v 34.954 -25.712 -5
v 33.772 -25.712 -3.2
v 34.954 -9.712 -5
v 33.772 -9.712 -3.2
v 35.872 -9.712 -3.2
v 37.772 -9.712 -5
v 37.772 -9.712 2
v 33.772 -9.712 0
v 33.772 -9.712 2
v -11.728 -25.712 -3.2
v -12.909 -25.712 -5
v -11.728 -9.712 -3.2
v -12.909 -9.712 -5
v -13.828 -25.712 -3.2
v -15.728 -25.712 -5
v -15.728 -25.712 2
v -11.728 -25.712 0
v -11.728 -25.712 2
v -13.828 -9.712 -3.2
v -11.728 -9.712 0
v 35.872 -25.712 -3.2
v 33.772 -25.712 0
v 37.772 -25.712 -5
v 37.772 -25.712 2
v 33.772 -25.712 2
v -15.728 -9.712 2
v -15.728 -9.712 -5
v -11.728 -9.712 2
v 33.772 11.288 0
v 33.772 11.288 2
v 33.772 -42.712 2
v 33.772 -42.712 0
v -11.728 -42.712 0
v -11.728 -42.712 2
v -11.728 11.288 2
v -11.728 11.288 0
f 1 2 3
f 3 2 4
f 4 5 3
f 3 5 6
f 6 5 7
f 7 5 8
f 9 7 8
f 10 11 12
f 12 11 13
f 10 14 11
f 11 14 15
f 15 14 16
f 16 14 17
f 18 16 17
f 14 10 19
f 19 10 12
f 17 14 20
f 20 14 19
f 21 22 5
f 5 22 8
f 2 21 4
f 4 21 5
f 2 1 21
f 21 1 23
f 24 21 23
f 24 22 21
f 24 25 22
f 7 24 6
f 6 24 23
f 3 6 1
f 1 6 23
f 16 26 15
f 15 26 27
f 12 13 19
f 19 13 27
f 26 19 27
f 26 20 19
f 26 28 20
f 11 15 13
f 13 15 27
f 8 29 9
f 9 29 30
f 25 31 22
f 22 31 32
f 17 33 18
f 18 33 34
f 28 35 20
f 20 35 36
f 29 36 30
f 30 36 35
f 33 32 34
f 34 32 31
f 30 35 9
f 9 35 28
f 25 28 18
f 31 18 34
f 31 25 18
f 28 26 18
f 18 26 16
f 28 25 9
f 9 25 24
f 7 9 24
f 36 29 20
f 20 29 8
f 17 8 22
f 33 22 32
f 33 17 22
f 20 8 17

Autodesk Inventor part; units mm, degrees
ref_plane "YZ Plane" through (0, 0, 0) normal (1, 0, 0) x (0, 1, 0)
ref_plane "XZ Plane" through (0, 0, 0) normal (0, 1, 0) x (-1, 0, 0)
ref_plane "XY Plane" through (0, 0, 0) normal (0, 0, 1) x (1, 0, 0)
sketch "Sketch1" plane through (0, 0, 0) normal (0, 0, 1) x (1, 0, 0)
  line L0 (-11.7277, 11.2879) -> (33.7723, 11.2879)
  line L1 (33.7723, 11.2879) -> (33.7723, -42.7121)
  line L2 (33.7723, -42.7121) -> (-11.7277, -42.7121)
  line L3 (-11.7277, -42.7121) -> (-11.7277, 11.2879)
  line L4 (-11.7277, -9.7121) -> (-15.7277, -9.7121)
  line L5 (-15.7277, -9.7121) -> (-15.7277, -23.7121)
  line L6 (-15.7277, -23.7121) -> (-11.7277, -23.7121)
  line L7 (-11.7277, -23.7121) -> (-11.7277, -9.7121)
  line L8 (33.7723, -9.7121) -> (37.7723, -9.7121)
  line L9 (37.7723, -9.7121) -> (37.7723, -23.7121)
  line L10 (37.7723, -23.7121) -> (33.7723, -23.7121)
  line L11 (33.7723, -23.7121) -> (33.7723, -9.7121)
  point P0 (0, 0)
  dimension "d0" = 45.5
  dimension "d1" = 54
  dimension "d2" = 4
  dimension "d3" = 14
  dimension "d4" = 21
  dimension "d5" = 4
  dimension "d6" = 14
  dimension "d7" = 21
extrude "Extrusion1" add sketch "Sketch1" along normal blind 2 contours L0 L1 L2 L3
sketch "Sketch2" plane through (0, 0, 2) normal (0, 0, 1) x (1, 0, 0)
  line L0 (-11.7277, 11.2879) -> (-11.7277, -42.7121) projected
  line L1 (33.7723, -42.7121) -> (33.7723, 11.2879) projected
  line L2 (33.7723, 11.2879) -> (-11.7277, 11.2879) projected
  line L3 (-11.7277, -9.7121) -> (-15.7277, -9.7121)
  line L4 (-15.7277, -9.7121) -> (-15.7277, -25.7121)
  line L5 (-15.7277, -25.7121) -> (-11.7277, -25.7121)
  line L6 (-11.7277, -25.7121) -> (-11.7277, -9.7121)
  line L7 (33.7723, -9.7121) -> (37.7723, -9.7121)
  line L8 (37.7723, -9.7121) -> (37.7723, -25.7121)
  line L9 (37.7723, -25.7121) -> (33.7723, -25.7121)
  line L10 (33.7723, -25.7121) -> (33.7723, -9.7121)
  point P0 (0, 0)
  dimension "d10" = 4
  dimension "d11" = 16
  dimension "d12" = 21
  dimension "d13" = 4
extrude "Extrusion2" add sketch "Sketch2" against normal blind 7
sketch "Sketch3" plane through (33.7723, -9.7121, 2) normal (0, 1, 0) x (1, 0, 0)
  line L0 (4, 0) -> (4, 7) projected
  line L1 (0, 2) -> (0, 7) projected
  line L2 (0, 7) -> (0, 5.2)
  line L3 (0, 5.2) -> (2.1, 5.2)
  line L4 (2.1, 5.2) -> (0, 2)
  line L5 (0, 5.2) -> (0, 2)
  point P0 (-33.7723, 2)
  dimension "d16" = 1.8
  dimension "d17" = 2.1
extrude "Extrusion3" cut sketch "Sketch3" against normal blind 24.75
sketch "Sketch4" plane through (-15.7277, -9.7121, 2) normal (0, 1, 0) x (1, 0, 0)
  line L0 (4, 2) -> (4, 7) projected
  line L1 (4, 7) -> (4, 5.2)
  line L2 (4, 5.2) -> (1.9, 5.2)
  line L3 (1.9, 5.2) -> (4, 2)
  point P0 (15.7277, 2)
  dimension "d20" = 1.8
  dimension "d21" = 2.1
extrude "Extrusion4" cut sketch "Sketch4" against normal blind 176.5
sketch "Sketch5" plane through (-15.7277, -9.7121, 2) normal (0, 1, 0) x (1, 0, 0)
  line L0 (4, 5.2) -> (4, 7) projected
  line L1 (0, 7) -> (4, 7) projected
  line L2 (4, 2) -> (4, 0) projected
  line L3 (4, 2) -> (1.9, 5.2) projected
  line L4 (4, 5.2) -> (2.8188, 7)
  line L5 (4, 7) -> (4, 5.2)
  point P0 (15.7277, 2)
extrude "Extrusion5" cut sketch "Sketch5" against normal blind 3535.5
sketch "Sketch6" plane through (33.7723, -9.7121, 2) normal (0, 1, 0) x (1, 0, 0)
  line L0 (2.1, 5.2) -> (0, 2) projected
  line L1 (0, 7) -> (4, 7) projected
  line L2 (0, 5.2) -> (0, 7) projected
  line L3 (0, 5.2) -> (2.1, 5.2) projected
  line L4 (0, 5.2) -> (1.1813, 7)
  line L5 (0, 7) -> (0, 5.2)
  point P0 (-33.7723, 2)
extrude "Extrusion6" cut sketch "Sketch6" against normal blind 5309.5
properties part number "SkateBoxCover"
